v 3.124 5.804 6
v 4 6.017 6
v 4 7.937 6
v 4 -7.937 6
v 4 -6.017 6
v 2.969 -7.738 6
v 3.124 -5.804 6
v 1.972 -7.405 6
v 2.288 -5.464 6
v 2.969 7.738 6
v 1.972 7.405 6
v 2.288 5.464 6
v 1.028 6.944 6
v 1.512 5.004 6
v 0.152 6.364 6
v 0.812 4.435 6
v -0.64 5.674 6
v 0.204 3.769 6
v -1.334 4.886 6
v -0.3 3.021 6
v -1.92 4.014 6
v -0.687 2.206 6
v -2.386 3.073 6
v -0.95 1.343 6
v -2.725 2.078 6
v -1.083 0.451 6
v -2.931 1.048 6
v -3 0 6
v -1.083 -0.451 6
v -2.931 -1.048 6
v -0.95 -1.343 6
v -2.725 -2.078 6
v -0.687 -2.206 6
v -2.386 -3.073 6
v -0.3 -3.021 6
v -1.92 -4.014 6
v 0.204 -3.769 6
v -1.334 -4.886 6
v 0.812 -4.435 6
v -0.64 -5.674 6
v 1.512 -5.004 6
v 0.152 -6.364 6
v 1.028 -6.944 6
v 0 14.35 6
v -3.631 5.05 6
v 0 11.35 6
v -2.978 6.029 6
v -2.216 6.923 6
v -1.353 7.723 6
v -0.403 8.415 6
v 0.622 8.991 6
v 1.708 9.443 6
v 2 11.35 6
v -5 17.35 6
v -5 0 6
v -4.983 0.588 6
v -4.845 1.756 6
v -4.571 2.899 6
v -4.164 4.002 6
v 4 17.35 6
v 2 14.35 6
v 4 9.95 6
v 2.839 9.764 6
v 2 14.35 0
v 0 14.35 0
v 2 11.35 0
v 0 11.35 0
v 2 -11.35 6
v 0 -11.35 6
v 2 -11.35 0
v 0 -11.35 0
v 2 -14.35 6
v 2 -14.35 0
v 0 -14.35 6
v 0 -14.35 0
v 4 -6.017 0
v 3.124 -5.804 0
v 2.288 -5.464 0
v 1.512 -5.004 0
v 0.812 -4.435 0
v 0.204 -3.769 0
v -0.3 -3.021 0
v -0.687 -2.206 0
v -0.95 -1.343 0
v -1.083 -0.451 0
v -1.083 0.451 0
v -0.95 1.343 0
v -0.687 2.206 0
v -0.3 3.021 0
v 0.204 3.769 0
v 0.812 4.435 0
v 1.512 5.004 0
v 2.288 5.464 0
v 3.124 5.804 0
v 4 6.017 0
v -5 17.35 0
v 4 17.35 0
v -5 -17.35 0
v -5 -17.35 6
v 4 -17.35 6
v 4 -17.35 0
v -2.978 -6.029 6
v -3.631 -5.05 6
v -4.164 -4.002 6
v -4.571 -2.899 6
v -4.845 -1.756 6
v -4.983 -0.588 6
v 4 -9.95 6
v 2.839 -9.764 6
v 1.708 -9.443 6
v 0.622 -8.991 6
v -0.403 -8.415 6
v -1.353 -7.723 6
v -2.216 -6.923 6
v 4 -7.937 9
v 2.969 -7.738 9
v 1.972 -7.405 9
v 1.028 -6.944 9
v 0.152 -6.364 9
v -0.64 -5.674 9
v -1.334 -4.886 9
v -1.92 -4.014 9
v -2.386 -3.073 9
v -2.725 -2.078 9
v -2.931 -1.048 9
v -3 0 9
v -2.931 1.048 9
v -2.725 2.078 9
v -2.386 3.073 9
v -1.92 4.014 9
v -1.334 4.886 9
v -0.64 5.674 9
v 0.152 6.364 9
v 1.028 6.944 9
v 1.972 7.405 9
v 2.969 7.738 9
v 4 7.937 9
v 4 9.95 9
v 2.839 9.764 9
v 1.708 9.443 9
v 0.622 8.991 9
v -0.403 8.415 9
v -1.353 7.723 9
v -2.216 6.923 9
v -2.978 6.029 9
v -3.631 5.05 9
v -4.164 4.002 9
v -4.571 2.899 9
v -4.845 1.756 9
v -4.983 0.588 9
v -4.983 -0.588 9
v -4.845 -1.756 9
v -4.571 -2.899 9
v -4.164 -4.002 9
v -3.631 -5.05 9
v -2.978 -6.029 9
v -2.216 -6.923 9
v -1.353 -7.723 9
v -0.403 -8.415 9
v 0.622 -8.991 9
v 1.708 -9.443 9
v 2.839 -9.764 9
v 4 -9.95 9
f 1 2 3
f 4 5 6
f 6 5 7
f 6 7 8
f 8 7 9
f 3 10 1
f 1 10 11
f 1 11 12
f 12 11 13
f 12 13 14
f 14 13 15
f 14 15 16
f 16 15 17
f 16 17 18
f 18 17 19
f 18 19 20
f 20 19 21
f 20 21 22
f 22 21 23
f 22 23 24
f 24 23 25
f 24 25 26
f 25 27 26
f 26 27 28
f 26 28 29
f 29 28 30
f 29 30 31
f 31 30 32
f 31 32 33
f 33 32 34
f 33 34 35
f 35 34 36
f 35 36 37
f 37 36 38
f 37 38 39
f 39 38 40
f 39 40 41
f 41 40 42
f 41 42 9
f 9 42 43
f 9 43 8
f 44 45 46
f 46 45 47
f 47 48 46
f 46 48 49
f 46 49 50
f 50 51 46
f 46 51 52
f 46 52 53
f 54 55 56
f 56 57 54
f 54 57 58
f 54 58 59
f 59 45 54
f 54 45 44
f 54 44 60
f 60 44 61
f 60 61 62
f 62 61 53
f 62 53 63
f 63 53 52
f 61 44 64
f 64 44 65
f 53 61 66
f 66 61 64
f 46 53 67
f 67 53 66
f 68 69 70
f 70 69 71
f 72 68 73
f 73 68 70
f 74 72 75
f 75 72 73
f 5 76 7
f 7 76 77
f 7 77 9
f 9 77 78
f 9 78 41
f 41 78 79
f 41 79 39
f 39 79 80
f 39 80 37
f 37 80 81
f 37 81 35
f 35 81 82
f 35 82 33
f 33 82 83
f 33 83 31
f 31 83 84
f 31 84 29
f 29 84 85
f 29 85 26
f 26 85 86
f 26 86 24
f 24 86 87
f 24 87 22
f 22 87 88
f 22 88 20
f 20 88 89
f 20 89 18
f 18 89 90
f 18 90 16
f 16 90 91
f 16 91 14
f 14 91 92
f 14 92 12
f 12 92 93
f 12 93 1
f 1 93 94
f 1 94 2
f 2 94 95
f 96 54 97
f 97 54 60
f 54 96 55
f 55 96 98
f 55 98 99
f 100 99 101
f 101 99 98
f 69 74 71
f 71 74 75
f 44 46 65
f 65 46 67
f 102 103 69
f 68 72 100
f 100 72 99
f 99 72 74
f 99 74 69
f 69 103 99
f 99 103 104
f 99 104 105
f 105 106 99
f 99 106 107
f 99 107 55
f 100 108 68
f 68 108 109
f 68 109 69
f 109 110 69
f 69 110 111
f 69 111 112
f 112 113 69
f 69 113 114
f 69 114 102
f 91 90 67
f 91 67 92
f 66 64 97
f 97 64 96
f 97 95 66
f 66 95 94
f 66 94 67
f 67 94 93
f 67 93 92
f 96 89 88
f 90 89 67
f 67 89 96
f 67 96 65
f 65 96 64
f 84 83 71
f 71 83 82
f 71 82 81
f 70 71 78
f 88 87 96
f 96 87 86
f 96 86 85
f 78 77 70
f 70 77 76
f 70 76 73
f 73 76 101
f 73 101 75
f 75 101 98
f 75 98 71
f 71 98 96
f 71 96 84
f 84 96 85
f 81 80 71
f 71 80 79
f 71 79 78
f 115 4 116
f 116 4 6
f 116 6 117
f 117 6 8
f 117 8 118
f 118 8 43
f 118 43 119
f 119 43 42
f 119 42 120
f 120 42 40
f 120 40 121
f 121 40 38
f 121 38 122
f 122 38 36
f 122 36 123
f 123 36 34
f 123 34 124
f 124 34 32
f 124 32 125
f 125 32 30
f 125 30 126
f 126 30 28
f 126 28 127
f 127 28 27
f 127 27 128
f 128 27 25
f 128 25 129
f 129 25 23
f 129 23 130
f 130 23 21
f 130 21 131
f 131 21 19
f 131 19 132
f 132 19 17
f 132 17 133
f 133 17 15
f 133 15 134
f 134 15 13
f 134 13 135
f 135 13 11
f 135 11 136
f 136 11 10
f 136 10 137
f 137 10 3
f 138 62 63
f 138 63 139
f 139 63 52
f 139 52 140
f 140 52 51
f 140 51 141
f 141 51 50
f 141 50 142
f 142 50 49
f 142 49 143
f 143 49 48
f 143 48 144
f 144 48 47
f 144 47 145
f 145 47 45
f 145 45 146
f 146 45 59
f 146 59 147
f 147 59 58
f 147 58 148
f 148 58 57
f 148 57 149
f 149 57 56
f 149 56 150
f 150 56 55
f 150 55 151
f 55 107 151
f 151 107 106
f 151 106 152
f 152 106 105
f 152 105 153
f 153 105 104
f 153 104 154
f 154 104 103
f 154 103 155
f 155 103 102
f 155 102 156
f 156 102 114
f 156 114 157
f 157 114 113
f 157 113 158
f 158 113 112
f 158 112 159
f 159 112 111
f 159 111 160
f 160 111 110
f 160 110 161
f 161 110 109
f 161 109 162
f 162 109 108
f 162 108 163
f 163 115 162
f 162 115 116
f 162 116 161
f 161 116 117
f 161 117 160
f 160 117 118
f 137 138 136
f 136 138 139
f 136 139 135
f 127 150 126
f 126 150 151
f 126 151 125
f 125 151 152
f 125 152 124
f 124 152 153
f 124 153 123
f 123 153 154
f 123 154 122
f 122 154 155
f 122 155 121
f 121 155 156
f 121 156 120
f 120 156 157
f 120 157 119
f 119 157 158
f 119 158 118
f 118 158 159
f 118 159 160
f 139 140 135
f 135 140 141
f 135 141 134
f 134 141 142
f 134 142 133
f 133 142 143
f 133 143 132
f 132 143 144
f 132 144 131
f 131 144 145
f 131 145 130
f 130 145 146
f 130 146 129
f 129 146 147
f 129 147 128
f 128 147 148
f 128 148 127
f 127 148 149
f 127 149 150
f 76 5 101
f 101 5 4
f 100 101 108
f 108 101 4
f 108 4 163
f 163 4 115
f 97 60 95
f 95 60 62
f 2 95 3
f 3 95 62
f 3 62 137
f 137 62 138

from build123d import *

# Parameters (mm, degrees)
SKETCH_1_W          = 2
SKETCH_1_H          = 3
EXTRUDE_1_DEPTH     = 6
EXTRUDE_2_DEPTH     = 3
SKETCH_3_W          = 1
SKETCH_3_H          = 34.7
CUT_EXTRUDE_1_DEPTH = 9


with BuildPart() as part:
    # 草圖1 → 填料-伸長1 (new body)
    with BuildSketch(Plane.XY):
        with BuildLine():
            Line((5, 17.35), (-5, 17.35))
            Line((-5, 17.35), (-5, -17.35))
            Line((-5, -17.35), (5, -17.35))
            Line((5, -17.35), (5, -6.1))
            ThreePointArc((5, -6.1), (-1.1, 0), (5, 6.1))
            Line((5, 6.1), (5, 17.35))
        make_face()
        with Locations((1, -12.85)):
            Rectangle(SKETCH_1_W, SKETCH_1_H, mode=Mode.SUBTRACT)
        with Locations((1, 12.85)):
            Rectangle(SKETCH_1_W, SKETCH_1_H, mode=Mode.SUBTRACT)
    extrude(amount=EXTRUDE_1_DEPTH)

    # 草圖2 → 填料-伸長2 (add)
    with BuildSketch(Plane.XY.offset(6)):
        with BuildLine():
            Line((5, 10), (5, 8))
            ThreePointArc((5, 8), (-3, 0), (5, -8))
            Line((5, -8), (5, -10))
            ThreePointArc((5, -10), (-5, 0), (5, 10))
        make_face()
    extrude(amount=EXTRUDE_2_DEPTH)

    # 草圖3 → 除料-伸長1 (cut, symmetric)
    with BuildSketch(Plane.XY.offset(6)):
        with Locations((4.5, 0)):
            Rectangle(SKETCH_3_W, SKETCH_3_H)
    extrude(amount=CUT_EXTRUDE_1_DEPTH, both=True, mode=Mode.SUBTRACT)


solid = part.part
